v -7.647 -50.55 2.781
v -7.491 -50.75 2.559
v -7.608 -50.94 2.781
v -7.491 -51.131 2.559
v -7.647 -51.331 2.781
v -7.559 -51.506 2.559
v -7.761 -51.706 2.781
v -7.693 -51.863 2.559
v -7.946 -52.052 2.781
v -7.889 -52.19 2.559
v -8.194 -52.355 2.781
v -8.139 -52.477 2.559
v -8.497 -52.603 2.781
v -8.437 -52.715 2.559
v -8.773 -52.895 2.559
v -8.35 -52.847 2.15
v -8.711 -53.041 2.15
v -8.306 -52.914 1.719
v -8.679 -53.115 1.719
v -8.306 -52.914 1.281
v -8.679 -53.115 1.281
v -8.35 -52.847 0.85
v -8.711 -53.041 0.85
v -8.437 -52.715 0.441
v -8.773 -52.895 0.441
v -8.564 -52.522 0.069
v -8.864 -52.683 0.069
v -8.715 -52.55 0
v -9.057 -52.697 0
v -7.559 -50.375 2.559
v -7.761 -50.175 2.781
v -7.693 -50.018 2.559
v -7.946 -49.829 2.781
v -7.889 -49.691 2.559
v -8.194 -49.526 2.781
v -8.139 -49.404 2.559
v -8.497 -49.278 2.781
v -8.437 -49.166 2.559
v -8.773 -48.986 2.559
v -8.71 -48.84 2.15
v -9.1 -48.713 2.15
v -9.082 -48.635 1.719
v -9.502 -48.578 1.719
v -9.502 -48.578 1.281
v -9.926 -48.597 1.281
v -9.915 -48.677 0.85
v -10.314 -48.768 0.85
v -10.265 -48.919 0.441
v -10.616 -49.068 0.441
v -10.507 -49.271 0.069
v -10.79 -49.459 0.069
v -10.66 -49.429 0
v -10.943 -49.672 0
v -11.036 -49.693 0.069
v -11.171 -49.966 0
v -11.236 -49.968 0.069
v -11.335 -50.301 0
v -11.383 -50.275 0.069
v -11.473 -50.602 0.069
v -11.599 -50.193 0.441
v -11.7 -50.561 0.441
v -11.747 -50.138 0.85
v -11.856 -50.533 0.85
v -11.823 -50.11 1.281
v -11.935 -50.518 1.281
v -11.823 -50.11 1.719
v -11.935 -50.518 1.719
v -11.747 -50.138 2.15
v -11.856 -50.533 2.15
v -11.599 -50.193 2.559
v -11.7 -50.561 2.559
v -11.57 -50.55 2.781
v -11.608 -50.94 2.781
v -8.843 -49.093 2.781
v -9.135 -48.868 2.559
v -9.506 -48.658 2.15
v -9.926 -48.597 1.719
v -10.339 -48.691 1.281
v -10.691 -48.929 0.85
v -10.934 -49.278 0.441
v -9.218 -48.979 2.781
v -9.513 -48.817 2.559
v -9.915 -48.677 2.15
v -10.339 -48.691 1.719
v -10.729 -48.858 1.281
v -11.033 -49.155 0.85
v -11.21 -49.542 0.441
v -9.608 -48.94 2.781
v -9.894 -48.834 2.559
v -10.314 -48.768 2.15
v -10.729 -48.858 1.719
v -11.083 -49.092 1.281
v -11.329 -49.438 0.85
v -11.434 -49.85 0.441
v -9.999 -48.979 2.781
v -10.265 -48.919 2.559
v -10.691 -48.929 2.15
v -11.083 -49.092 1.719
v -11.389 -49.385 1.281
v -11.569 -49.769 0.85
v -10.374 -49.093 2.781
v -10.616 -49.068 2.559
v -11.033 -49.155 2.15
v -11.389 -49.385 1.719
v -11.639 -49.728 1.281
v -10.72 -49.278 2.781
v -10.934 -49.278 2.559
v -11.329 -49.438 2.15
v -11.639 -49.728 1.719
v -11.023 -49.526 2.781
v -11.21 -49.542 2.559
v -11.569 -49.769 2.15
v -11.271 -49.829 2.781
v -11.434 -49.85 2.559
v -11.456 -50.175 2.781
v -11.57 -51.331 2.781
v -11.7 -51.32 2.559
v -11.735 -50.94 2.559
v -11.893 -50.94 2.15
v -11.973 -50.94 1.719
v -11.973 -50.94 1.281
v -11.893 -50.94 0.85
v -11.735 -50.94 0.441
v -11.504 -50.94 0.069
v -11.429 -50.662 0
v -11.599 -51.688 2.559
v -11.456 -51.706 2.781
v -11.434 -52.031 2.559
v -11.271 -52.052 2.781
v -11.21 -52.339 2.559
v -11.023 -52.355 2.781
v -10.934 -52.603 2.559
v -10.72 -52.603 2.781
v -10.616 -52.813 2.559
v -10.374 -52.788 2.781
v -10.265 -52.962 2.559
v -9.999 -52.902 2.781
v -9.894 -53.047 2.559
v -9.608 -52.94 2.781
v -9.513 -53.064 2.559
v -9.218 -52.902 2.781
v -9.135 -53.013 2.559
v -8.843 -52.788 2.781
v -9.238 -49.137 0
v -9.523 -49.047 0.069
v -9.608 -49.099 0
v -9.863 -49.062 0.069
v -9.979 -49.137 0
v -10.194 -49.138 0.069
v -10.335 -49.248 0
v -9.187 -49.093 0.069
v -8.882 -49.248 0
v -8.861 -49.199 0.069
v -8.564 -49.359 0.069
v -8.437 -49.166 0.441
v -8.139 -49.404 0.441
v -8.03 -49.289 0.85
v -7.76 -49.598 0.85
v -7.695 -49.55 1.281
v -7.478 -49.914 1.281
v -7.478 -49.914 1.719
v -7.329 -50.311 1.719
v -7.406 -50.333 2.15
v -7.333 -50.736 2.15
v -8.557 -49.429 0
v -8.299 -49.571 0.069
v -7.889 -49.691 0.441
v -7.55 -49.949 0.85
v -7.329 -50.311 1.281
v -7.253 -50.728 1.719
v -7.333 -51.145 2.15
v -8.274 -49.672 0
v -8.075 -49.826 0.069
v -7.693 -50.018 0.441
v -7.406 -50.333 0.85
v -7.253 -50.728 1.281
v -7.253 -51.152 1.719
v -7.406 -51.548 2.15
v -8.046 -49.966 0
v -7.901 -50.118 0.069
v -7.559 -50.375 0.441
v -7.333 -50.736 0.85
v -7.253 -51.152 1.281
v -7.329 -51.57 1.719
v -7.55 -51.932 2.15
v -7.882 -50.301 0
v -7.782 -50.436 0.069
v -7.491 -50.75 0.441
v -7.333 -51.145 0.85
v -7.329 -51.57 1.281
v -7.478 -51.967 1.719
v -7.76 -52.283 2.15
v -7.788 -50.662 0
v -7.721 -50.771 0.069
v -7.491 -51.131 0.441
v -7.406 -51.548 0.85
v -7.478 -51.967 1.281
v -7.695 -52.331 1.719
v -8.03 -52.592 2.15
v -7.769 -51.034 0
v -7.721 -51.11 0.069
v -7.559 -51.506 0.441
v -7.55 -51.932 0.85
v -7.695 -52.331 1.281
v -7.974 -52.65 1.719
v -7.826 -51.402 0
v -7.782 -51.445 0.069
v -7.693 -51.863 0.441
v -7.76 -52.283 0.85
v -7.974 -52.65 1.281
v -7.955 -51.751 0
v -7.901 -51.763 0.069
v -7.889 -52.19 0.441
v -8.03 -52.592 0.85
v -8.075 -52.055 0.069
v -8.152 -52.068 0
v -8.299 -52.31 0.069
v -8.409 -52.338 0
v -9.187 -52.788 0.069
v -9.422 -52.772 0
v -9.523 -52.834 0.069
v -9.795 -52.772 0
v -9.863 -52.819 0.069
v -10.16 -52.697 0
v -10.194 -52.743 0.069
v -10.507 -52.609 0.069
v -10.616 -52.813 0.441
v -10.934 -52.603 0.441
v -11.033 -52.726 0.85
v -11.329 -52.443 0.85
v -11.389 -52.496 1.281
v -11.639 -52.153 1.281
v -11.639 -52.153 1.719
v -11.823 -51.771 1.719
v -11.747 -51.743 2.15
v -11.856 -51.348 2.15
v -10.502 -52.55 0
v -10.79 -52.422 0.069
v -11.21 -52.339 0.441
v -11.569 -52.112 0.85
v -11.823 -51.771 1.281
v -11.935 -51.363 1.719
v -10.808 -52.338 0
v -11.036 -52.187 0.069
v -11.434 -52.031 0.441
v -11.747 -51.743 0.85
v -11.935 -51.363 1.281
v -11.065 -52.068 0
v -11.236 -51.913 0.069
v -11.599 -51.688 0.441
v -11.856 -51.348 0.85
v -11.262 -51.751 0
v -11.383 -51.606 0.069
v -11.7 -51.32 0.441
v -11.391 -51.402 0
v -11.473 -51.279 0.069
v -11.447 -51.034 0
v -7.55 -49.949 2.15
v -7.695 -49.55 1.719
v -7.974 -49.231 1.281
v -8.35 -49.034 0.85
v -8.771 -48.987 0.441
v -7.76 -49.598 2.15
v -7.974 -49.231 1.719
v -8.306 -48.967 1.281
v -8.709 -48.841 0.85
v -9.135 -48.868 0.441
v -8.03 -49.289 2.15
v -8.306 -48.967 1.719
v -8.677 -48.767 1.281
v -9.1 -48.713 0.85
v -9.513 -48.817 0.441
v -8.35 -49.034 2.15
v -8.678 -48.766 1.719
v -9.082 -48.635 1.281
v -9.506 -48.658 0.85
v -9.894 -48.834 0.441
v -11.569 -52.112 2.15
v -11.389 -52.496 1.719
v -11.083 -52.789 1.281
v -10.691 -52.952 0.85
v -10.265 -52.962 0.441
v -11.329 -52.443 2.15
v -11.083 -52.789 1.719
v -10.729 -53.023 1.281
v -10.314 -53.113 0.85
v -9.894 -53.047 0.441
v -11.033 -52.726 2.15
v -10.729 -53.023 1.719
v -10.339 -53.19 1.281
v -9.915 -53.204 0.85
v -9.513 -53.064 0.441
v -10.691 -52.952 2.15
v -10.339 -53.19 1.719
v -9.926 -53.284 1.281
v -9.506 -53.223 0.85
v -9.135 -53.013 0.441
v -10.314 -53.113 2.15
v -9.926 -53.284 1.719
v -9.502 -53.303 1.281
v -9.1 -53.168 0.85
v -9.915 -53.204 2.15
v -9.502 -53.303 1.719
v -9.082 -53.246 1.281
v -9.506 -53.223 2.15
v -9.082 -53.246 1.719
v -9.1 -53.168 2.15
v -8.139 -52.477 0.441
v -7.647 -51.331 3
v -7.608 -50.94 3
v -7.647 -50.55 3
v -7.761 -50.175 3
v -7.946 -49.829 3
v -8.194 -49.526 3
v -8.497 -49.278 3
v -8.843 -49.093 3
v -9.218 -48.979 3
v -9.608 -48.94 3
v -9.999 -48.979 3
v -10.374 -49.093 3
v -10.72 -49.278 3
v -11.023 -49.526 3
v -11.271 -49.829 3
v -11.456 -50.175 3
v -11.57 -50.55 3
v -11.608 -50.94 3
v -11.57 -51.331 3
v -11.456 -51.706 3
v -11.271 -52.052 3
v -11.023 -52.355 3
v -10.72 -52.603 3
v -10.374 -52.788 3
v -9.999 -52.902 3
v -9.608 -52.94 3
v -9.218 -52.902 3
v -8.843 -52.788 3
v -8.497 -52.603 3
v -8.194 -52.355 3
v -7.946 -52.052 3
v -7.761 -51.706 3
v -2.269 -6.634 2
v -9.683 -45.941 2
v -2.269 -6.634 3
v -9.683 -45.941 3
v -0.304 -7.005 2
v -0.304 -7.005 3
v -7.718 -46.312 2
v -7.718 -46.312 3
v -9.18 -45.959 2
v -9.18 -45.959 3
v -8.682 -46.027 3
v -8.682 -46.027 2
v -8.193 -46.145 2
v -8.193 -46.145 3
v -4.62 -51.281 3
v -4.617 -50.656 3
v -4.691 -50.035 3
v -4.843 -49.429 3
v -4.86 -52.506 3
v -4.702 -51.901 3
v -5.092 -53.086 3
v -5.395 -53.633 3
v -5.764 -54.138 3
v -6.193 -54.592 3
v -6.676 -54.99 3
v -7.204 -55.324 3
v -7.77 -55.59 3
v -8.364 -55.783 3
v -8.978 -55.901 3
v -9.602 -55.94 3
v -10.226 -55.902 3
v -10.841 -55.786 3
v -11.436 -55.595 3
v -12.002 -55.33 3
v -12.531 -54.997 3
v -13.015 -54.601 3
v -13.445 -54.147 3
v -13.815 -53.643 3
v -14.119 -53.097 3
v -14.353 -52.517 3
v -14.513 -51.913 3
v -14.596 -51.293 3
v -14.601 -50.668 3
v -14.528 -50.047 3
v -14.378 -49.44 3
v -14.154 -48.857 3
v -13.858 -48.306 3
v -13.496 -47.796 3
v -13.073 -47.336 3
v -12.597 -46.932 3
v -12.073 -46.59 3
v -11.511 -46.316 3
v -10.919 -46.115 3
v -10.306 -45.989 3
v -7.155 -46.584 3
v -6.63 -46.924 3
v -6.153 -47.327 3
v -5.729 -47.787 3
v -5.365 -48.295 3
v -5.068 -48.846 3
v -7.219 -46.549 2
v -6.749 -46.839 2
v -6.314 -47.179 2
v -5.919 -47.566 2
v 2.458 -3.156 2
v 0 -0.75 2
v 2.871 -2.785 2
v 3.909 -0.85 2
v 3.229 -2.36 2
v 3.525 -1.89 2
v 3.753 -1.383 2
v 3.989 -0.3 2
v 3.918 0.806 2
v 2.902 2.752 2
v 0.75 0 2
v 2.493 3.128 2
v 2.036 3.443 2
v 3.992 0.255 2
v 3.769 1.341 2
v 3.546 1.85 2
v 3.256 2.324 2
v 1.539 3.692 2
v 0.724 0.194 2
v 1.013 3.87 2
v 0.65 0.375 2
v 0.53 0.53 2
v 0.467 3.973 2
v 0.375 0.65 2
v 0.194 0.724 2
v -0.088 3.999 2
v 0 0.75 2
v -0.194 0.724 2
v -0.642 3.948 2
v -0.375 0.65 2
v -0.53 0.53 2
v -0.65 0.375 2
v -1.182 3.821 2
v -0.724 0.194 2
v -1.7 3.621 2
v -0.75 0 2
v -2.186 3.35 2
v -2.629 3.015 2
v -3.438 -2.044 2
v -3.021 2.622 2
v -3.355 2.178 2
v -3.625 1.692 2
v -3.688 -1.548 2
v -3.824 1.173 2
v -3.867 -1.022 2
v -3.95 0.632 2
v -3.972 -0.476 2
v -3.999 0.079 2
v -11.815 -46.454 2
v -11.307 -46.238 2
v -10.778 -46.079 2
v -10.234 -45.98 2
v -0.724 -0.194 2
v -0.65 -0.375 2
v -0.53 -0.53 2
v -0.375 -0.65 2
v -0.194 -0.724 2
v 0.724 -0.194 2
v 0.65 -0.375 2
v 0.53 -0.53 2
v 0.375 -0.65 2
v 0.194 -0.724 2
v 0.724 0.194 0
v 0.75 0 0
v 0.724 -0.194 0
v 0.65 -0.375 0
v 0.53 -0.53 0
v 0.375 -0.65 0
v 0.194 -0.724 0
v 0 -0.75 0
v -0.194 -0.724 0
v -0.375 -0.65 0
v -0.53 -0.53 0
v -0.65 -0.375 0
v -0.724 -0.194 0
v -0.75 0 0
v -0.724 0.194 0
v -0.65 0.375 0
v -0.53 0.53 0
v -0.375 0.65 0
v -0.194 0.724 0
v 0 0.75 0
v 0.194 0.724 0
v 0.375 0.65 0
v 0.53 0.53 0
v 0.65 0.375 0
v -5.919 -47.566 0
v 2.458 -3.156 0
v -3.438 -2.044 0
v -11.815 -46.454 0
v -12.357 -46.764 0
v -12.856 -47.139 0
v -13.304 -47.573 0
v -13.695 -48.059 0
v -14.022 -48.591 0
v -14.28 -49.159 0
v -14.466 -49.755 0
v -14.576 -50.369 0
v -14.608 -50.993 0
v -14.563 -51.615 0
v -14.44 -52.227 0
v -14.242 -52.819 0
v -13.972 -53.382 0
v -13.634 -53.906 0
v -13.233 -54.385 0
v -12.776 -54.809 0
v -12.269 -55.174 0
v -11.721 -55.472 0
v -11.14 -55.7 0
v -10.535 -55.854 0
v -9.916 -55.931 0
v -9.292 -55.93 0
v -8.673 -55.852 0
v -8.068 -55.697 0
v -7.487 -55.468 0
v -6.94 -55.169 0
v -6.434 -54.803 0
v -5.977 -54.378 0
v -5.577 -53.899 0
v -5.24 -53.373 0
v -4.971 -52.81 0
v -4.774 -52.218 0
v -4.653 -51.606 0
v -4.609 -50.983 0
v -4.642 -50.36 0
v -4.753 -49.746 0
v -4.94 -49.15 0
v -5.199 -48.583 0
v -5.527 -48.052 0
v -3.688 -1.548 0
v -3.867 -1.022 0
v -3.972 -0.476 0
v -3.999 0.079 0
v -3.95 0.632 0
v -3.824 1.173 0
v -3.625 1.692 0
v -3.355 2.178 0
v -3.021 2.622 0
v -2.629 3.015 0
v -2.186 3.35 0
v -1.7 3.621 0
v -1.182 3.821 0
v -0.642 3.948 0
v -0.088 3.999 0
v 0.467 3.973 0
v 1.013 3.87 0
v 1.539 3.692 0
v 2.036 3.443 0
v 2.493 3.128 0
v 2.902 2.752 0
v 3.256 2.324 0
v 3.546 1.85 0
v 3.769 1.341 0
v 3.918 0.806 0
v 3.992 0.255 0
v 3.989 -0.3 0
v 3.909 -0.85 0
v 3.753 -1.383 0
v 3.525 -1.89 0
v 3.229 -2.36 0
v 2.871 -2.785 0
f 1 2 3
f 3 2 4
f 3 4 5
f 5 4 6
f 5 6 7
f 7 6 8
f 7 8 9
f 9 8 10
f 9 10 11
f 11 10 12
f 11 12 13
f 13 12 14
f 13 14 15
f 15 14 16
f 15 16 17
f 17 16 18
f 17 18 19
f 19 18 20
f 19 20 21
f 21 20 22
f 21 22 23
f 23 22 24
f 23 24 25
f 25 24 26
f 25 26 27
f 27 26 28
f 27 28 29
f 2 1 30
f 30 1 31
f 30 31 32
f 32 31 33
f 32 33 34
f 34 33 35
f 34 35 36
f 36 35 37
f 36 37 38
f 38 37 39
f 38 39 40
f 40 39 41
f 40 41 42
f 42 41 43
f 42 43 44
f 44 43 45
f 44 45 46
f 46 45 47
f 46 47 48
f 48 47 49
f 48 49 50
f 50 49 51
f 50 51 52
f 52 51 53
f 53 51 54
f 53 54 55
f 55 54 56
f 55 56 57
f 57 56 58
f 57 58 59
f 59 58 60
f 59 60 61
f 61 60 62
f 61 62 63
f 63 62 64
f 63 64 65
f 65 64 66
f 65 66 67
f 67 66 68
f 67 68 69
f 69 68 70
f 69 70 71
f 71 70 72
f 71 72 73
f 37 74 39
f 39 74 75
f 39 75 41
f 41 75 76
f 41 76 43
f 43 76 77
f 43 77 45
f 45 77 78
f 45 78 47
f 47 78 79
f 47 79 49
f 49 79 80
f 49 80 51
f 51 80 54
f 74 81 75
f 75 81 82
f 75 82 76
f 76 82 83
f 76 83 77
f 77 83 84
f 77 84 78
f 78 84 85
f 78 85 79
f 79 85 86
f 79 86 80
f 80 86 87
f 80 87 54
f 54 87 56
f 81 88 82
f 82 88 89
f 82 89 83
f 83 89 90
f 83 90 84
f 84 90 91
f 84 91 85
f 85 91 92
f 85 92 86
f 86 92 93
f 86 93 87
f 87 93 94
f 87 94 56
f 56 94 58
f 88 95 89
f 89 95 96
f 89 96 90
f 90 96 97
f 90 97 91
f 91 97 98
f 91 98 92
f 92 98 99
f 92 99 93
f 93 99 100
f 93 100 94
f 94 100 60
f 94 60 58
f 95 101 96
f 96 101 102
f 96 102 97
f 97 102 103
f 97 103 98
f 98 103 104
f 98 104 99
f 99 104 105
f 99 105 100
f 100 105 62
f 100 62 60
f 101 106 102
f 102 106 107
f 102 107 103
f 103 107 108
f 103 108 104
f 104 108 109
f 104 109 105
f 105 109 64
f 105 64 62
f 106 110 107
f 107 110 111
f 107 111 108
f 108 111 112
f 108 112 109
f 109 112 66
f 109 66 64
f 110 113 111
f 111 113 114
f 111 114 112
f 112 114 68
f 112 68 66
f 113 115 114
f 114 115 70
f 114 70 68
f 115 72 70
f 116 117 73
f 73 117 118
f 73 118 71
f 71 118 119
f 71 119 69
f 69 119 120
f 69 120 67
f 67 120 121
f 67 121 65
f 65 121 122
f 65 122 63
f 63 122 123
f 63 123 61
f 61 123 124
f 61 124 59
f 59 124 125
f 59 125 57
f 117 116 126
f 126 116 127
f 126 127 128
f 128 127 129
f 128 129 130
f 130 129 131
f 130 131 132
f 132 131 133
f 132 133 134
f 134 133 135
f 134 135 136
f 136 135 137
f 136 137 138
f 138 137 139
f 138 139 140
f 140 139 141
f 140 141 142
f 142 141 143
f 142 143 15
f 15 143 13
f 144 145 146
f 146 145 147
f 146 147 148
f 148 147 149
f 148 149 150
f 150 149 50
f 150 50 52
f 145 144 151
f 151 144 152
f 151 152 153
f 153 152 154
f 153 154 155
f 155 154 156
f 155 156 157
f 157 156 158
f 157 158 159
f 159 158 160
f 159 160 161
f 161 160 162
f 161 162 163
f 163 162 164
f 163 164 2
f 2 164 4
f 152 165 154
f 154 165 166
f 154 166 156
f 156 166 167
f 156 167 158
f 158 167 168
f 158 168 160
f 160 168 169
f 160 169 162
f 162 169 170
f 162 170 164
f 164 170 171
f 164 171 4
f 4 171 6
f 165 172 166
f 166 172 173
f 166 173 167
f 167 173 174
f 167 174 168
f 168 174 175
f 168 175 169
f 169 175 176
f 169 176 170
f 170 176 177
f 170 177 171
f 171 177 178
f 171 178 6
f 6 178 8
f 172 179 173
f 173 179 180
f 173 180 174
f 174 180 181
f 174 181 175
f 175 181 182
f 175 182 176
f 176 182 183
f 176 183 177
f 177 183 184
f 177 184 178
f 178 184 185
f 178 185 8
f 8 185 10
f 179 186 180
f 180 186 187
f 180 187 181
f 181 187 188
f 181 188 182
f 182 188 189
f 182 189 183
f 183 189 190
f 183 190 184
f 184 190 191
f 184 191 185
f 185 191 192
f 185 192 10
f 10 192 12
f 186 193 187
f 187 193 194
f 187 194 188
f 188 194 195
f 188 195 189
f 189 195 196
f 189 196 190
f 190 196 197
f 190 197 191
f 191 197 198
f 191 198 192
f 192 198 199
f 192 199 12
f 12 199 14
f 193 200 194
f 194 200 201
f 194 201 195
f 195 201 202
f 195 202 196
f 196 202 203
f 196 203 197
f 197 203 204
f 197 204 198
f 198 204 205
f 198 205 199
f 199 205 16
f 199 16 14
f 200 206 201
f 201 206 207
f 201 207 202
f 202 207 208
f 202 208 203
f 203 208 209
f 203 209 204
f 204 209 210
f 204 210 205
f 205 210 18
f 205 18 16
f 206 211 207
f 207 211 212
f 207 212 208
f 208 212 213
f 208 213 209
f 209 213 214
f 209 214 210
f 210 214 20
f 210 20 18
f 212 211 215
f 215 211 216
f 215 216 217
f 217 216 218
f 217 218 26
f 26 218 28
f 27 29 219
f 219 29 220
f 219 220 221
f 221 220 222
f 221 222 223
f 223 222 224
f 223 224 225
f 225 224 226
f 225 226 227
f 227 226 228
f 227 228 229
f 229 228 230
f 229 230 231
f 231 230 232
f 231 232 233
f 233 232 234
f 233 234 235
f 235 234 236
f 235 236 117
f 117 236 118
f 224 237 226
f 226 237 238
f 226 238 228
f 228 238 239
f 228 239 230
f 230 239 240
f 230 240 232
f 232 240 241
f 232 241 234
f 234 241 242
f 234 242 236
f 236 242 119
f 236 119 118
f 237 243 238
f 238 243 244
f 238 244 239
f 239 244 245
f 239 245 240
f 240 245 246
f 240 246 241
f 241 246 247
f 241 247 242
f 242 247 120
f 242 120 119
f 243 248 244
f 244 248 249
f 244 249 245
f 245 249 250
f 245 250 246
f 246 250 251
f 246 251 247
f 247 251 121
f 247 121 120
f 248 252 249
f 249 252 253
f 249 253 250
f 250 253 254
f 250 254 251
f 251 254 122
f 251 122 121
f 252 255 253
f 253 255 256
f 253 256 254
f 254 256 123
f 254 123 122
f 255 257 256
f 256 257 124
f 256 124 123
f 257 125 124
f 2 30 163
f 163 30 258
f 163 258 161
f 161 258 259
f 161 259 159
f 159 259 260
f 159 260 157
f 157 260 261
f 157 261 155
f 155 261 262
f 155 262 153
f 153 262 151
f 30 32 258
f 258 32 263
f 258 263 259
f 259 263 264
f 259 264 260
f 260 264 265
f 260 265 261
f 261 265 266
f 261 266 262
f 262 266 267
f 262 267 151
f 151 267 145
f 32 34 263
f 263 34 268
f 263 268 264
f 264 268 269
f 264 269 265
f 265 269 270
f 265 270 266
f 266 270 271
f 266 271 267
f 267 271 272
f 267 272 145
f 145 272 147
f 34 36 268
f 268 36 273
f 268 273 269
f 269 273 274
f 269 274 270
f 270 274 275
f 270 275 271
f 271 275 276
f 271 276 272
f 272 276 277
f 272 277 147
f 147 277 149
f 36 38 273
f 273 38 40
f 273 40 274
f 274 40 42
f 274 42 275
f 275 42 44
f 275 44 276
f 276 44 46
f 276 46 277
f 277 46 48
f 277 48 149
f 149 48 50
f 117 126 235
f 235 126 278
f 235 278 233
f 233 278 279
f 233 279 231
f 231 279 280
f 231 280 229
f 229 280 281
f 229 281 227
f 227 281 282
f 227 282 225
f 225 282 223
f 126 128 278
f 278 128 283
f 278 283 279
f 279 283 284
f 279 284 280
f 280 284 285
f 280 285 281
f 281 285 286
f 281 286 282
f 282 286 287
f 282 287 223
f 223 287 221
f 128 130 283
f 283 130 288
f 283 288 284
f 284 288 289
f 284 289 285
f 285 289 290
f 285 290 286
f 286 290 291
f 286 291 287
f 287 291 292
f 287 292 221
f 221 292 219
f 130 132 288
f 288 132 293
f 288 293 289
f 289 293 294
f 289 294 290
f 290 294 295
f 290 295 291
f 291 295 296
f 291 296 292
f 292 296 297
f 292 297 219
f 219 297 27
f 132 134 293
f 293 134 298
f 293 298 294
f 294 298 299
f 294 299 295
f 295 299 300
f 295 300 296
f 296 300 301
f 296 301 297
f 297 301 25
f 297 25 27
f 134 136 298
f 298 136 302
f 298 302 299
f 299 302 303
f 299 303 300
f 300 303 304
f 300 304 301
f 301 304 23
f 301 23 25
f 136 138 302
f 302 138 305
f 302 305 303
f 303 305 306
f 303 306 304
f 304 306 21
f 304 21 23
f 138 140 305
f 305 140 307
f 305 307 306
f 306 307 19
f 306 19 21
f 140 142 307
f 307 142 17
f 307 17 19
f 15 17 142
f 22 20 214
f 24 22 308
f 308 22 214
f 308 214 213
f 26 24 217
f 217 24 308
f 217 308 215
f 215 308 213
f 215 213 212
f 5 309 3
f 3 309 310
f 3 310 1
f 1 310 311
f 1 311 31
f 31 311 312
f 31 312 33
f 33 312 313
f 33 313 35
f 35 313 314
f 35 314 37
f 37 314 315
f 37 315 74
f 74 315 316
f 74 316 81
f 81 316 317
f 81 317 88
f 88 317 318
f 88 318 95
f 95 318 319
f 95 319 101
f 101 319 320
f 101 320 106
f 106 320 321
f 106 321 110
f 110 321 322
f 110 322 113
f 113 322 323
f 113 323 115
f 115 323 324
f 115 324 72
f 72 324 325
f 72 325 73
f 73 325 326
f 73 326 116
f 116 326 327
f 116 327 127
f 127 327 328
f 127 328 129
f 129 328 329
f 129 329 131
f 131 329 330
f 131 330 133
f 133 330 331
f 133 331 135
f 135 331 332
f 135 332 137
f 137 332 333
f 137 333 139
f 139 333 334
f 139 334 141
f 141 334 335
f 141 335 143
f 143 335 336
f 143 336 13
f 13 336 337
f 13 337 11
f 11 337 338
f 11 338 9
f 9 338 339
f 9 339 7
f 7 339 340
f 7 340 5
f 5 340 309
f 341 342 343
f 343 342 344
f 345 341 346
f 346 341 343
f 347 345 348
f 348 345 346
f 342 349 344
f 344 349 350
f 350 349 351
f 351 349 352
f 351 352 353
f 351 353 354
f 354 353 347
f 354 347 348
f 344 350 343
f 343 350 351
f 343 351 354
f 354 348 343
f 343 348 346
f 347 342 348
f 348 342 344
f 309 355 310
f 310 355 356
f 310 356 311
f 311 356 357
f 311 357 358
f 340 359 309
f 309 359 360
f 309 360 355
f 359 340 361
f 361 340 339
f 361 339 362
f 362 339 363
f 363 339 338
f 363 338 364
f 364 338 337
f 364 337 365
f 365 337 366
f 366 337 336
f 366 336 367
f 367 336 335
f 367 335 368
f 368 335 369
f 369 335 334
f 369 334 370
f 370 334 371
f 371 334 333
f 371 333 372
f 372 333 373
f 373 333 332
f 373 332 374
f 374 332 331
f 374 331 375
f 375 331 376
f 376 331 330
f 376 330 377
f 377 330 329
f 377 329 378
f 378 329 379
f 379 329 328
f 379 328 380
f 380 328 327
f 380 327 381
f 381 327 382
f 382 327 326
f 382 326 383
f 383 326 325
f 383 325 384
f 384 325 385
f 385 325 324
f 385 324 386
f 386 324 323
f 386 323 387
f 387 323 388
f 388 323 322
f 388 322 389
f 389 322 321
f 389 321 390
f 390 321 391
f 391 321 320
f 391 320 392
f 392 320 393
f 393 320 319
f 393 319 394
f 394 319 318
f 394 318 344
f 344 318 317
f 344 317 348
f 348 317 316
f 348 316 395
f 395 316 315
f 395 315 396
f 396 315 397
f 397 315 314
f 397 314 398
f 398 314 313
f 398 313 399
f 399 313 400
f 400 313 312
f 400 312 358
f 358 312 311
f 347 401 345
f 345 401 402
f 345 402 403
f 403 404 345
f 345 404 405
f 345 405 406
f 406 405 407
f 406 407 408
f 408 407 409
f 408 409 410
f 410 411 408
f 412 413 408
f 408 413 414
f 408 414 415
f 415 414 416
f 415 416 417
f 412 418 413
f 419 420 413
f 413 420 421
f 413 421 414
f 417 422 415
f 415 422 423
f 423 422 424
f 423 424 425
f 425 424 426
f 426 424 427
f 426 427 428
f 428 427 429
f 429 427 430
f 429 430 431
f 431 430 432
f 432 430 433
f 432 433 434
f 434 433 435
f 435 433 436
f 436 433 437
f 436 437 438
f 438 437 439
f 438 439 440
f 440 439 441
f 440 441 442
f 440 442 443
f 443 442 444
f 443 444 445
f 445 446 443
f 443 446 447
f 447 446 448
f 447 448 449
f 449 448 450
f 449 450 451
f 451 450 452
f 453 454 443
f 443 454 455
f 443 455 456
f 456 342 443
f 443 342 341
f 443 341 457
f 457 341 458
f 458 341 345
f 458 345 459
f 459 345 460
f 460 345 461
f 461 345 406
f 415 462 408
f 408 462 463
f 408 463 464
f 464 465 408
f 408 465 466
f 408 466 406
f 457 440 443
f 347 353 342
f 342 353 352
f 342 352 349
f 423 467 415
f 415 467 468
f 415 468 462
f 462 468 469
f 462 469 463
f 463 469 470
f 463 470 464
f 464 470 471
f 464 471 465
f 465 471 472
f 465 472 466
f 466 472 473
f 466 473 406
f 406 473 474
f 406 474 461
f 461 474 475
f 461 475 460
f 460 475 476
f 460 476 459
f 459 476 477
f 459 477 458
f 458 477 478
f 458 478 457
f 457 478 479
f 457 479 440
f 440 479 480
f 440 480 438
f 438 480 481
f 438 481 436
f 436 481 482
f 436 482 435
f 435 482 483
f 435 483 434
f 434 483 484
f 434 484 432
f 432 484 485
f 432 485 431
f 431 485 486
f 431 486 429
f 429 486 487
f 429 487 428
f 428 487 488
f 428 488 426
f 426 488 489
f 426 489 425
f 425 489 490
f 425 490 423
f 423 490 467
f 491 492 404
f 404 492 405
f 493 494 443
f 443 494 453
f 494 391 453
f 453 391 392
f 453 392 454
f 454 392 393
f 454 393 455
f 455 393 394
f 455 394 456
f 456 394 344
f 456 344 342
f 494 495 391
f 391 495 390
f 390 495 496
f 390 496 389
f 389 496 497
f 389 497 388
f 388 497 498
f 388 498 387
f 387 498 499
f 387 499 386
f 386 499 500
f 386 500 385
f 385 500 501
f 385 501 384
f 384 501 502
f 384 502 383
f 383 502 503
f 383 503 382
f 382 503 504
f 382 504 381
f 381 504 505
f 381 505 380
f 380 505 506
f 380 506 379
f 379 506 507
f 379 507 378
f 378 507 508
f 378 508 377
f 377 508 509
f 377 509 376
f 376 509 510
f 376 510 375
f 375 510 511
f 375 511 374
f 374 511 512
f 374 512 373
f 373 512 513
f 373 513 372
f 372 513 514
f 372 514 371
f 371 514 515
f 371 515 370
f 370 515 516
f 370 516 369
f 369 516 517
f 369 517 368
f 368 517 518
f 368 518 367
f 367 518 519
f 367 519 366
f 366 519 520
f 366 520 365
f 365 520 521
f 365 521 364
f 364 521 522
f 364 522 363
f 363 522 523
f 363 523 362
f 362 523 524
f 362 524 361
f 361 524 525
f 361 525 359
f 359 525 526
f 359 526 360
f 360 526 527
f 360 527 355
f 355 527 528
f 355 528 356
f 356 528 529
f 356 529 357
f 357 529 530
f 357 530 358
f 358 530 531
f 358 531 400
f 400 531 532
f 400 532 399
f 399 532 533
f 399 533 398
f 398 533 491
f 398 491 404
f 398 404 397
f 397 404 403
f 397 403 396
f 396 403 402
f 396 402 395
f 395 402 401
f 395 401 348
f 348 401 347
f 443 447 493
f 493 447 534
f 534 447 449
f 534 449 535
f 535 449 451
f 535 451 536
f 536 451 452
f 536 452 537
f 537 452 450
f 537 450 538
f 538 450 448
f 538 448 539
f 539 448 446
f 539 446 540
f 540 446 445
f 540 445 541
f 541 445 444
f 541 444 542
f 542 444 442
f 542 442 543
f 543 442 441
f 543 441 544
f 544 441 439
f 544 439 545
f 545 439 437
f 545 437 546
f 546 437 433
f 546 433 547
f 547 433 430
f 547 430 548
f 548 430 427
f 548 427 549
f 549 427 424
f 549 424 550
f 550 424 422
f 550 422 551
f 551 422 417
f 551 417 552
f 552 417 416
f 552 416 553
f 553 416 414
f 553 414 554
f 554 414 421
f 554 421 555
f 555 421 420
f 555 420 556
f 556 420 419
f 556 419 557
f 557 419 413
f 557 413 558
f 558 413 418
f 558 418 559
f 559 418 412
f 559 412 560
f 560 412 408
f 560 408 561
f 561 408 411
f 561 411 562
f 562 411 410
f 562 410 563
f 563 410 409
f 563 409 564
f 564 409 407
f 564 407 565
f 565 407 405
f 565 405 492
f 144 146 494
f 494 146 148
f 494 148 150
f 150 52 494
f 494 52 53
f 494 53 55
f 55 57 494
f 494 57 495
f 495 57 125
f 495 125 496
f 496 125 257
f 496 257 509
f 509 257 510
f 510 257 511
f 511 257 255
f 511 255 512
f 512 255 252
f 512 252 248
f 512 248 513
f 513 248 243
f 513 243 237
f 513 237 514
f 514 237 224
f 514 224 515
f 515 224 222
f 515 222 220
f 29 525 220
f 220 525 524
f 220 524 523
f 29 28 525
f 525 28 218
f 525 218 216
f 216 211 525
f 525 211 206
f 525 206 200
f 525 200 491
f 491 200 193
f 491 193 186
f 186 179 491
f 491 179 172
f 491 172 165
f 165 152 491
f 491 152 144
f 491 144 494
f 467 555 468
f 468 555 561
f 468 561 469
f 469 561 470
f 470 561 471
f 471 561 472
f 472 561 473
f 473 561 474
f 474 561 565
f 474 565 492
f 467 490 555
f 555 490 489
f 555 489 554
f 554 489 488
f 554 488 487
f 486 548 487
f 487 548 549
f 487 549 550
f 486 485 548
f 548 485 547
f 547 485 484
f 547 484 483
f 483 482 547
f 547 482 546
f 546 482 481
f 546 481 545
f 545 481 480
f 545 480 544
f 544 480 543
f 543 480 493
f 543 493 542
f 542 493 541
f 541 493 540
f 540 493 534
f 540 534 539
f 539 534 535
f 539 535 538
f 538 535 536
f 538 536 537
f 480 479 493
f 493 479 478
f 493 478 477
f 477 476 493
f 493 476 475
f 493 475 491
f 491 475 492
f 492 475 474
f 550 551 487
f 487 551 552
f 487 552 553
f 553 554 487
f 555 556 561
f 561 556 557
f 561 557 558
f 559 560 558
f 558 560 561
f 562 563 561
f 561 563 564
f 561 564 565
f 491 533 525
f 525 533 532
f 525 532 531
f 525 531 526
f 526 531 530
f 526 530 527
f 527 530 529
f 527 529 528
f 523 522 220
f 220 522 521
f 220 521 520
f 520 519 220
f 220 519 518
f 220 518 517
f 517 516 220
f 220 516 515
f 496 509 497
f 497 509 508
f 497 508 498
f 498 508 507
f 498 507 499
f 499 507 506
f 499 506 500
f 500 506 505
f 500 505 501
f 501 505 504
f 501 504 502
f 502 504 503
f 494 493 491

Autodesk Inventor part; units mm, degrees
ref_plane "YZ Plane" through (0, 0, 0) normal (1, 0, 0) x (0, 1, 0)
ref_plane "XZ Plane" through (0, 0, 0) normal (0, 1, 0) x (-1, 0, 0)
ref_plane "XY Plane" through (0, 0, 0) normal (0, 0, 1) x (1, 0, 0)
sketch "Sketch4" plane through (0, 0, 0) normal (0, 0, 1) x (1, 0, 0)
  circle A0 centre (0, 0) radius 0.75
  circle A1 centre (0, 0) radius 4
  spline S0 degree 3 poles (-10.1085, -50.9407) (-10.1085, -50.8779) (-10.096, -50.811) (-10.045, -50.6877) (-10.0066, -50.6315) (-9.9178, -50.5427) (-9.8616, -50.5042) (-9.7385, -50.4531) (-9.6715, -50.4405) (-9.5459, -50.4405) (-9.479, -50.453) (-9.3558, -50.5039) (-9.2995, -50.5424) (-9.2107, -50.6311) (-9.1722, -50.6873) (-9.1211, -50.8105) (-9.1085, -50.8775) (-9.1085, -51.003) (-9.121, -51.07) (-9.1719, -51.1932) (-9.2104, -51.2495) (-9.2991, -51.3383) (-9.3553, -51.3768) (-9.4785, -51.4279) (-9.5455, -51.4405) (-9.671, -51.4405) (-9.738, -51.428) (-9.8612, -51.377) (-9.9175, -51.3386) (-10.0063, -51.2498) (-10.0448, -51.1936) (-10.0959, -51.0705) (-10.1085, -51.0035) (-10.1085, -50.9407) knots 0 0 0 0 0.018836 0.018836 0.037671 0.037671 0.056507 0.056507 0.075342 0.075342 0.094178 0.094178 0.113013 0.113013 0.131849 0.131849 0.150684 0.150684 0.16952 0.16952 0.188355 0.188355 0.207191 0.207191 0.226026 0.226026 0.244862 0.244862 0.263697 0.263697 0.282533 0.282533 0.301369 0.301369 0.301369 0.301369 projected
  spline S1 degree 3 poles (-10.1085, -50.9407) (-10.1085, -50.8779) (-10.096, -50.811) (-10.045, -50.6877) (-10.0066, -50.6315) (-9.9178, -50.5427) (-9.8616, -50.5042) (-9.7385, -50.4531) (-9.6715, -50.4405) (-9.5459, -50.4405) (-9.479, -50.453) (-9.3558, -50.5039) (-9.2995, -50.5424) (-9.2107, -50.6311) (-9.1722, -50.6873) (-9.1211, -50.8105) (-9.1085, -50.8775) (-9.1085, -51.003) (-9.121, -51.07) (-9.1719, -51.1932) (-9.2104, -51.2495) (-9.2991, -51.3383) (-9.3553, -51.3768) (-9.4785, -51.4279) (-9.5455, -51.4405) (-9.671, -51.4405) (-9.738, -51.428) (-9.8612, -51.377) (-9.9175, -51.3386) (-10.0063, -51.2498) (-10.0448, -51.1936) (-10.0959, -51.0705) (-10.1085, -51.0035) (-10.1085, -50.9407) knots 0 0 0 0 0.018836 0.018836 0.037671 0.037671 0.056507 0.056507 0.075342 0.075342 0.094178 0.094178 0.113013 0.113013 0.131849 0.131849 0.150684 0.150684 0.16952 0.16952 0.188355 0.188355 0.207191 0.207191 0.226026 0.226026 0.244862 0.244862 0.263697 0.263697 0.282533 0.282533 0.301369 0.301369 0.301369 0.301369 projected
  circle A2 centre (-9.6085, -50.9405) radius 2.375
  circle A3 centre (-9.6085, -50.9405) radius 5
  line L0 (-9.6085, -50.9405) -> (0, 0)
  line L1 (-3.4384, -2.0438) -> (-11.8151, -46.4537)
  line L2 (-5.9191, -47.5659) -> (2.4576, -3.156)
  circle A4 centre (-9.6085, -50.9405) radius 1
  point P0 (-10.1085, -50.9407)
  dimension "d15" = 1.5
  dimension "d16" = 8
  dimension "d20" = 10
  dimension "d21" = 3
  dimension "d22" = 3
  dimension "d24" = 2
extrude "Extrusion3" add sketch "Sketch4" along normal blind 2 contours A1 | A1 L2 A3 L0 | L0 A3 L1 A1 | A3 | A2
ref_plane "Work Plane3" through (0, 0, 0) normal (0.9827, -0.1854, 0) x (0, 0, 1)
sketch "Sketch7" plane through (0, 0, 2) normal (0, 0, 1) x (1, 0, 0)
  arc A0 (-11.8151, -46.4537) -> (-5.9191, -47.5659) centre (-9.6085, -50.9405) ccw projected
  circle A1 centre (-9.6085, -50.9405) radius 1 projected
  circle A2 centre (-9.6085, -50.9405) radius 5
  circle A3 centre (-9.6085, -50.9405) radius 2
  line L0 (-9.6831, -45.941) -> (-7.7178, -46.3117)
  line L1 (-7.7178, -46.3117) -> (-0.3036, -7.0049)
  line L2 (-0.3036, -7.0049) -> (-2.269, -6.6342)
  line L3 (-2.269, -6.6342) -> (-9.6831, -45.941)
  line L4 (-3.4384, -2.0438) -> (-11.8151, -46.4537) projected
  point P0 (0, 0)
  dimension "d26" = 4
  dimension "d27" = 2
  dimension "d28" = 40
extrude "Extrusion4" add sketch "Sketch7" along normal blind 1 contours A2 L0 A0 | L3 L2 L1 A2
sketch "Sketch8" plane through (0, 0, 0) normal (0.9827, -0.1854, 0) x (0, 0, 1)
  line L0 (2, 52.8387) -> (2, 50.8387) projected
  line L1 (0, 50.8387) -> (0, 52.8387) projected
  line L2 (3, 53.8387) -> (3, 49.8387) projected
  line L3 (2, 49.8387) -> (2, 53.8387) projected
  line L4 (0, 51.8387) -> (3, 51.8387)
  line L5 (3, 46.9398) -> (3, 46.8387) projected
  line L6 (0, 51.8387) -> (-0.875, 51.8387)
  line L7 (0, 47.8387) -> (0, 56.8387) projected
  line L8 (3, 51.8387) -> (3.875, 51.8387)
  arc A0 (3, 53.6801) -> (0, 53.6801) centre (1.5, 51.8387) ccw
  arc A1 (-0.875, 51.8387) -> (3.875, 51.8387) centre (1.5, 51.8387) ccw
  line L9 (-1.825, 51.8387) -> (4.825, 51.8387) projected
  point P0 (0, 0)
revolve "Revolution2" cut sketch "Sketch8" angle 360 about axis through (-9.6085, -50.9405, 0) along (0, 0, 1) contours L7 A1 L6 L1 | L1 L4 L2 A1 L7 | L2 L8 A1
equation "\"d22\" = d21"
properties part number "BackArm"
